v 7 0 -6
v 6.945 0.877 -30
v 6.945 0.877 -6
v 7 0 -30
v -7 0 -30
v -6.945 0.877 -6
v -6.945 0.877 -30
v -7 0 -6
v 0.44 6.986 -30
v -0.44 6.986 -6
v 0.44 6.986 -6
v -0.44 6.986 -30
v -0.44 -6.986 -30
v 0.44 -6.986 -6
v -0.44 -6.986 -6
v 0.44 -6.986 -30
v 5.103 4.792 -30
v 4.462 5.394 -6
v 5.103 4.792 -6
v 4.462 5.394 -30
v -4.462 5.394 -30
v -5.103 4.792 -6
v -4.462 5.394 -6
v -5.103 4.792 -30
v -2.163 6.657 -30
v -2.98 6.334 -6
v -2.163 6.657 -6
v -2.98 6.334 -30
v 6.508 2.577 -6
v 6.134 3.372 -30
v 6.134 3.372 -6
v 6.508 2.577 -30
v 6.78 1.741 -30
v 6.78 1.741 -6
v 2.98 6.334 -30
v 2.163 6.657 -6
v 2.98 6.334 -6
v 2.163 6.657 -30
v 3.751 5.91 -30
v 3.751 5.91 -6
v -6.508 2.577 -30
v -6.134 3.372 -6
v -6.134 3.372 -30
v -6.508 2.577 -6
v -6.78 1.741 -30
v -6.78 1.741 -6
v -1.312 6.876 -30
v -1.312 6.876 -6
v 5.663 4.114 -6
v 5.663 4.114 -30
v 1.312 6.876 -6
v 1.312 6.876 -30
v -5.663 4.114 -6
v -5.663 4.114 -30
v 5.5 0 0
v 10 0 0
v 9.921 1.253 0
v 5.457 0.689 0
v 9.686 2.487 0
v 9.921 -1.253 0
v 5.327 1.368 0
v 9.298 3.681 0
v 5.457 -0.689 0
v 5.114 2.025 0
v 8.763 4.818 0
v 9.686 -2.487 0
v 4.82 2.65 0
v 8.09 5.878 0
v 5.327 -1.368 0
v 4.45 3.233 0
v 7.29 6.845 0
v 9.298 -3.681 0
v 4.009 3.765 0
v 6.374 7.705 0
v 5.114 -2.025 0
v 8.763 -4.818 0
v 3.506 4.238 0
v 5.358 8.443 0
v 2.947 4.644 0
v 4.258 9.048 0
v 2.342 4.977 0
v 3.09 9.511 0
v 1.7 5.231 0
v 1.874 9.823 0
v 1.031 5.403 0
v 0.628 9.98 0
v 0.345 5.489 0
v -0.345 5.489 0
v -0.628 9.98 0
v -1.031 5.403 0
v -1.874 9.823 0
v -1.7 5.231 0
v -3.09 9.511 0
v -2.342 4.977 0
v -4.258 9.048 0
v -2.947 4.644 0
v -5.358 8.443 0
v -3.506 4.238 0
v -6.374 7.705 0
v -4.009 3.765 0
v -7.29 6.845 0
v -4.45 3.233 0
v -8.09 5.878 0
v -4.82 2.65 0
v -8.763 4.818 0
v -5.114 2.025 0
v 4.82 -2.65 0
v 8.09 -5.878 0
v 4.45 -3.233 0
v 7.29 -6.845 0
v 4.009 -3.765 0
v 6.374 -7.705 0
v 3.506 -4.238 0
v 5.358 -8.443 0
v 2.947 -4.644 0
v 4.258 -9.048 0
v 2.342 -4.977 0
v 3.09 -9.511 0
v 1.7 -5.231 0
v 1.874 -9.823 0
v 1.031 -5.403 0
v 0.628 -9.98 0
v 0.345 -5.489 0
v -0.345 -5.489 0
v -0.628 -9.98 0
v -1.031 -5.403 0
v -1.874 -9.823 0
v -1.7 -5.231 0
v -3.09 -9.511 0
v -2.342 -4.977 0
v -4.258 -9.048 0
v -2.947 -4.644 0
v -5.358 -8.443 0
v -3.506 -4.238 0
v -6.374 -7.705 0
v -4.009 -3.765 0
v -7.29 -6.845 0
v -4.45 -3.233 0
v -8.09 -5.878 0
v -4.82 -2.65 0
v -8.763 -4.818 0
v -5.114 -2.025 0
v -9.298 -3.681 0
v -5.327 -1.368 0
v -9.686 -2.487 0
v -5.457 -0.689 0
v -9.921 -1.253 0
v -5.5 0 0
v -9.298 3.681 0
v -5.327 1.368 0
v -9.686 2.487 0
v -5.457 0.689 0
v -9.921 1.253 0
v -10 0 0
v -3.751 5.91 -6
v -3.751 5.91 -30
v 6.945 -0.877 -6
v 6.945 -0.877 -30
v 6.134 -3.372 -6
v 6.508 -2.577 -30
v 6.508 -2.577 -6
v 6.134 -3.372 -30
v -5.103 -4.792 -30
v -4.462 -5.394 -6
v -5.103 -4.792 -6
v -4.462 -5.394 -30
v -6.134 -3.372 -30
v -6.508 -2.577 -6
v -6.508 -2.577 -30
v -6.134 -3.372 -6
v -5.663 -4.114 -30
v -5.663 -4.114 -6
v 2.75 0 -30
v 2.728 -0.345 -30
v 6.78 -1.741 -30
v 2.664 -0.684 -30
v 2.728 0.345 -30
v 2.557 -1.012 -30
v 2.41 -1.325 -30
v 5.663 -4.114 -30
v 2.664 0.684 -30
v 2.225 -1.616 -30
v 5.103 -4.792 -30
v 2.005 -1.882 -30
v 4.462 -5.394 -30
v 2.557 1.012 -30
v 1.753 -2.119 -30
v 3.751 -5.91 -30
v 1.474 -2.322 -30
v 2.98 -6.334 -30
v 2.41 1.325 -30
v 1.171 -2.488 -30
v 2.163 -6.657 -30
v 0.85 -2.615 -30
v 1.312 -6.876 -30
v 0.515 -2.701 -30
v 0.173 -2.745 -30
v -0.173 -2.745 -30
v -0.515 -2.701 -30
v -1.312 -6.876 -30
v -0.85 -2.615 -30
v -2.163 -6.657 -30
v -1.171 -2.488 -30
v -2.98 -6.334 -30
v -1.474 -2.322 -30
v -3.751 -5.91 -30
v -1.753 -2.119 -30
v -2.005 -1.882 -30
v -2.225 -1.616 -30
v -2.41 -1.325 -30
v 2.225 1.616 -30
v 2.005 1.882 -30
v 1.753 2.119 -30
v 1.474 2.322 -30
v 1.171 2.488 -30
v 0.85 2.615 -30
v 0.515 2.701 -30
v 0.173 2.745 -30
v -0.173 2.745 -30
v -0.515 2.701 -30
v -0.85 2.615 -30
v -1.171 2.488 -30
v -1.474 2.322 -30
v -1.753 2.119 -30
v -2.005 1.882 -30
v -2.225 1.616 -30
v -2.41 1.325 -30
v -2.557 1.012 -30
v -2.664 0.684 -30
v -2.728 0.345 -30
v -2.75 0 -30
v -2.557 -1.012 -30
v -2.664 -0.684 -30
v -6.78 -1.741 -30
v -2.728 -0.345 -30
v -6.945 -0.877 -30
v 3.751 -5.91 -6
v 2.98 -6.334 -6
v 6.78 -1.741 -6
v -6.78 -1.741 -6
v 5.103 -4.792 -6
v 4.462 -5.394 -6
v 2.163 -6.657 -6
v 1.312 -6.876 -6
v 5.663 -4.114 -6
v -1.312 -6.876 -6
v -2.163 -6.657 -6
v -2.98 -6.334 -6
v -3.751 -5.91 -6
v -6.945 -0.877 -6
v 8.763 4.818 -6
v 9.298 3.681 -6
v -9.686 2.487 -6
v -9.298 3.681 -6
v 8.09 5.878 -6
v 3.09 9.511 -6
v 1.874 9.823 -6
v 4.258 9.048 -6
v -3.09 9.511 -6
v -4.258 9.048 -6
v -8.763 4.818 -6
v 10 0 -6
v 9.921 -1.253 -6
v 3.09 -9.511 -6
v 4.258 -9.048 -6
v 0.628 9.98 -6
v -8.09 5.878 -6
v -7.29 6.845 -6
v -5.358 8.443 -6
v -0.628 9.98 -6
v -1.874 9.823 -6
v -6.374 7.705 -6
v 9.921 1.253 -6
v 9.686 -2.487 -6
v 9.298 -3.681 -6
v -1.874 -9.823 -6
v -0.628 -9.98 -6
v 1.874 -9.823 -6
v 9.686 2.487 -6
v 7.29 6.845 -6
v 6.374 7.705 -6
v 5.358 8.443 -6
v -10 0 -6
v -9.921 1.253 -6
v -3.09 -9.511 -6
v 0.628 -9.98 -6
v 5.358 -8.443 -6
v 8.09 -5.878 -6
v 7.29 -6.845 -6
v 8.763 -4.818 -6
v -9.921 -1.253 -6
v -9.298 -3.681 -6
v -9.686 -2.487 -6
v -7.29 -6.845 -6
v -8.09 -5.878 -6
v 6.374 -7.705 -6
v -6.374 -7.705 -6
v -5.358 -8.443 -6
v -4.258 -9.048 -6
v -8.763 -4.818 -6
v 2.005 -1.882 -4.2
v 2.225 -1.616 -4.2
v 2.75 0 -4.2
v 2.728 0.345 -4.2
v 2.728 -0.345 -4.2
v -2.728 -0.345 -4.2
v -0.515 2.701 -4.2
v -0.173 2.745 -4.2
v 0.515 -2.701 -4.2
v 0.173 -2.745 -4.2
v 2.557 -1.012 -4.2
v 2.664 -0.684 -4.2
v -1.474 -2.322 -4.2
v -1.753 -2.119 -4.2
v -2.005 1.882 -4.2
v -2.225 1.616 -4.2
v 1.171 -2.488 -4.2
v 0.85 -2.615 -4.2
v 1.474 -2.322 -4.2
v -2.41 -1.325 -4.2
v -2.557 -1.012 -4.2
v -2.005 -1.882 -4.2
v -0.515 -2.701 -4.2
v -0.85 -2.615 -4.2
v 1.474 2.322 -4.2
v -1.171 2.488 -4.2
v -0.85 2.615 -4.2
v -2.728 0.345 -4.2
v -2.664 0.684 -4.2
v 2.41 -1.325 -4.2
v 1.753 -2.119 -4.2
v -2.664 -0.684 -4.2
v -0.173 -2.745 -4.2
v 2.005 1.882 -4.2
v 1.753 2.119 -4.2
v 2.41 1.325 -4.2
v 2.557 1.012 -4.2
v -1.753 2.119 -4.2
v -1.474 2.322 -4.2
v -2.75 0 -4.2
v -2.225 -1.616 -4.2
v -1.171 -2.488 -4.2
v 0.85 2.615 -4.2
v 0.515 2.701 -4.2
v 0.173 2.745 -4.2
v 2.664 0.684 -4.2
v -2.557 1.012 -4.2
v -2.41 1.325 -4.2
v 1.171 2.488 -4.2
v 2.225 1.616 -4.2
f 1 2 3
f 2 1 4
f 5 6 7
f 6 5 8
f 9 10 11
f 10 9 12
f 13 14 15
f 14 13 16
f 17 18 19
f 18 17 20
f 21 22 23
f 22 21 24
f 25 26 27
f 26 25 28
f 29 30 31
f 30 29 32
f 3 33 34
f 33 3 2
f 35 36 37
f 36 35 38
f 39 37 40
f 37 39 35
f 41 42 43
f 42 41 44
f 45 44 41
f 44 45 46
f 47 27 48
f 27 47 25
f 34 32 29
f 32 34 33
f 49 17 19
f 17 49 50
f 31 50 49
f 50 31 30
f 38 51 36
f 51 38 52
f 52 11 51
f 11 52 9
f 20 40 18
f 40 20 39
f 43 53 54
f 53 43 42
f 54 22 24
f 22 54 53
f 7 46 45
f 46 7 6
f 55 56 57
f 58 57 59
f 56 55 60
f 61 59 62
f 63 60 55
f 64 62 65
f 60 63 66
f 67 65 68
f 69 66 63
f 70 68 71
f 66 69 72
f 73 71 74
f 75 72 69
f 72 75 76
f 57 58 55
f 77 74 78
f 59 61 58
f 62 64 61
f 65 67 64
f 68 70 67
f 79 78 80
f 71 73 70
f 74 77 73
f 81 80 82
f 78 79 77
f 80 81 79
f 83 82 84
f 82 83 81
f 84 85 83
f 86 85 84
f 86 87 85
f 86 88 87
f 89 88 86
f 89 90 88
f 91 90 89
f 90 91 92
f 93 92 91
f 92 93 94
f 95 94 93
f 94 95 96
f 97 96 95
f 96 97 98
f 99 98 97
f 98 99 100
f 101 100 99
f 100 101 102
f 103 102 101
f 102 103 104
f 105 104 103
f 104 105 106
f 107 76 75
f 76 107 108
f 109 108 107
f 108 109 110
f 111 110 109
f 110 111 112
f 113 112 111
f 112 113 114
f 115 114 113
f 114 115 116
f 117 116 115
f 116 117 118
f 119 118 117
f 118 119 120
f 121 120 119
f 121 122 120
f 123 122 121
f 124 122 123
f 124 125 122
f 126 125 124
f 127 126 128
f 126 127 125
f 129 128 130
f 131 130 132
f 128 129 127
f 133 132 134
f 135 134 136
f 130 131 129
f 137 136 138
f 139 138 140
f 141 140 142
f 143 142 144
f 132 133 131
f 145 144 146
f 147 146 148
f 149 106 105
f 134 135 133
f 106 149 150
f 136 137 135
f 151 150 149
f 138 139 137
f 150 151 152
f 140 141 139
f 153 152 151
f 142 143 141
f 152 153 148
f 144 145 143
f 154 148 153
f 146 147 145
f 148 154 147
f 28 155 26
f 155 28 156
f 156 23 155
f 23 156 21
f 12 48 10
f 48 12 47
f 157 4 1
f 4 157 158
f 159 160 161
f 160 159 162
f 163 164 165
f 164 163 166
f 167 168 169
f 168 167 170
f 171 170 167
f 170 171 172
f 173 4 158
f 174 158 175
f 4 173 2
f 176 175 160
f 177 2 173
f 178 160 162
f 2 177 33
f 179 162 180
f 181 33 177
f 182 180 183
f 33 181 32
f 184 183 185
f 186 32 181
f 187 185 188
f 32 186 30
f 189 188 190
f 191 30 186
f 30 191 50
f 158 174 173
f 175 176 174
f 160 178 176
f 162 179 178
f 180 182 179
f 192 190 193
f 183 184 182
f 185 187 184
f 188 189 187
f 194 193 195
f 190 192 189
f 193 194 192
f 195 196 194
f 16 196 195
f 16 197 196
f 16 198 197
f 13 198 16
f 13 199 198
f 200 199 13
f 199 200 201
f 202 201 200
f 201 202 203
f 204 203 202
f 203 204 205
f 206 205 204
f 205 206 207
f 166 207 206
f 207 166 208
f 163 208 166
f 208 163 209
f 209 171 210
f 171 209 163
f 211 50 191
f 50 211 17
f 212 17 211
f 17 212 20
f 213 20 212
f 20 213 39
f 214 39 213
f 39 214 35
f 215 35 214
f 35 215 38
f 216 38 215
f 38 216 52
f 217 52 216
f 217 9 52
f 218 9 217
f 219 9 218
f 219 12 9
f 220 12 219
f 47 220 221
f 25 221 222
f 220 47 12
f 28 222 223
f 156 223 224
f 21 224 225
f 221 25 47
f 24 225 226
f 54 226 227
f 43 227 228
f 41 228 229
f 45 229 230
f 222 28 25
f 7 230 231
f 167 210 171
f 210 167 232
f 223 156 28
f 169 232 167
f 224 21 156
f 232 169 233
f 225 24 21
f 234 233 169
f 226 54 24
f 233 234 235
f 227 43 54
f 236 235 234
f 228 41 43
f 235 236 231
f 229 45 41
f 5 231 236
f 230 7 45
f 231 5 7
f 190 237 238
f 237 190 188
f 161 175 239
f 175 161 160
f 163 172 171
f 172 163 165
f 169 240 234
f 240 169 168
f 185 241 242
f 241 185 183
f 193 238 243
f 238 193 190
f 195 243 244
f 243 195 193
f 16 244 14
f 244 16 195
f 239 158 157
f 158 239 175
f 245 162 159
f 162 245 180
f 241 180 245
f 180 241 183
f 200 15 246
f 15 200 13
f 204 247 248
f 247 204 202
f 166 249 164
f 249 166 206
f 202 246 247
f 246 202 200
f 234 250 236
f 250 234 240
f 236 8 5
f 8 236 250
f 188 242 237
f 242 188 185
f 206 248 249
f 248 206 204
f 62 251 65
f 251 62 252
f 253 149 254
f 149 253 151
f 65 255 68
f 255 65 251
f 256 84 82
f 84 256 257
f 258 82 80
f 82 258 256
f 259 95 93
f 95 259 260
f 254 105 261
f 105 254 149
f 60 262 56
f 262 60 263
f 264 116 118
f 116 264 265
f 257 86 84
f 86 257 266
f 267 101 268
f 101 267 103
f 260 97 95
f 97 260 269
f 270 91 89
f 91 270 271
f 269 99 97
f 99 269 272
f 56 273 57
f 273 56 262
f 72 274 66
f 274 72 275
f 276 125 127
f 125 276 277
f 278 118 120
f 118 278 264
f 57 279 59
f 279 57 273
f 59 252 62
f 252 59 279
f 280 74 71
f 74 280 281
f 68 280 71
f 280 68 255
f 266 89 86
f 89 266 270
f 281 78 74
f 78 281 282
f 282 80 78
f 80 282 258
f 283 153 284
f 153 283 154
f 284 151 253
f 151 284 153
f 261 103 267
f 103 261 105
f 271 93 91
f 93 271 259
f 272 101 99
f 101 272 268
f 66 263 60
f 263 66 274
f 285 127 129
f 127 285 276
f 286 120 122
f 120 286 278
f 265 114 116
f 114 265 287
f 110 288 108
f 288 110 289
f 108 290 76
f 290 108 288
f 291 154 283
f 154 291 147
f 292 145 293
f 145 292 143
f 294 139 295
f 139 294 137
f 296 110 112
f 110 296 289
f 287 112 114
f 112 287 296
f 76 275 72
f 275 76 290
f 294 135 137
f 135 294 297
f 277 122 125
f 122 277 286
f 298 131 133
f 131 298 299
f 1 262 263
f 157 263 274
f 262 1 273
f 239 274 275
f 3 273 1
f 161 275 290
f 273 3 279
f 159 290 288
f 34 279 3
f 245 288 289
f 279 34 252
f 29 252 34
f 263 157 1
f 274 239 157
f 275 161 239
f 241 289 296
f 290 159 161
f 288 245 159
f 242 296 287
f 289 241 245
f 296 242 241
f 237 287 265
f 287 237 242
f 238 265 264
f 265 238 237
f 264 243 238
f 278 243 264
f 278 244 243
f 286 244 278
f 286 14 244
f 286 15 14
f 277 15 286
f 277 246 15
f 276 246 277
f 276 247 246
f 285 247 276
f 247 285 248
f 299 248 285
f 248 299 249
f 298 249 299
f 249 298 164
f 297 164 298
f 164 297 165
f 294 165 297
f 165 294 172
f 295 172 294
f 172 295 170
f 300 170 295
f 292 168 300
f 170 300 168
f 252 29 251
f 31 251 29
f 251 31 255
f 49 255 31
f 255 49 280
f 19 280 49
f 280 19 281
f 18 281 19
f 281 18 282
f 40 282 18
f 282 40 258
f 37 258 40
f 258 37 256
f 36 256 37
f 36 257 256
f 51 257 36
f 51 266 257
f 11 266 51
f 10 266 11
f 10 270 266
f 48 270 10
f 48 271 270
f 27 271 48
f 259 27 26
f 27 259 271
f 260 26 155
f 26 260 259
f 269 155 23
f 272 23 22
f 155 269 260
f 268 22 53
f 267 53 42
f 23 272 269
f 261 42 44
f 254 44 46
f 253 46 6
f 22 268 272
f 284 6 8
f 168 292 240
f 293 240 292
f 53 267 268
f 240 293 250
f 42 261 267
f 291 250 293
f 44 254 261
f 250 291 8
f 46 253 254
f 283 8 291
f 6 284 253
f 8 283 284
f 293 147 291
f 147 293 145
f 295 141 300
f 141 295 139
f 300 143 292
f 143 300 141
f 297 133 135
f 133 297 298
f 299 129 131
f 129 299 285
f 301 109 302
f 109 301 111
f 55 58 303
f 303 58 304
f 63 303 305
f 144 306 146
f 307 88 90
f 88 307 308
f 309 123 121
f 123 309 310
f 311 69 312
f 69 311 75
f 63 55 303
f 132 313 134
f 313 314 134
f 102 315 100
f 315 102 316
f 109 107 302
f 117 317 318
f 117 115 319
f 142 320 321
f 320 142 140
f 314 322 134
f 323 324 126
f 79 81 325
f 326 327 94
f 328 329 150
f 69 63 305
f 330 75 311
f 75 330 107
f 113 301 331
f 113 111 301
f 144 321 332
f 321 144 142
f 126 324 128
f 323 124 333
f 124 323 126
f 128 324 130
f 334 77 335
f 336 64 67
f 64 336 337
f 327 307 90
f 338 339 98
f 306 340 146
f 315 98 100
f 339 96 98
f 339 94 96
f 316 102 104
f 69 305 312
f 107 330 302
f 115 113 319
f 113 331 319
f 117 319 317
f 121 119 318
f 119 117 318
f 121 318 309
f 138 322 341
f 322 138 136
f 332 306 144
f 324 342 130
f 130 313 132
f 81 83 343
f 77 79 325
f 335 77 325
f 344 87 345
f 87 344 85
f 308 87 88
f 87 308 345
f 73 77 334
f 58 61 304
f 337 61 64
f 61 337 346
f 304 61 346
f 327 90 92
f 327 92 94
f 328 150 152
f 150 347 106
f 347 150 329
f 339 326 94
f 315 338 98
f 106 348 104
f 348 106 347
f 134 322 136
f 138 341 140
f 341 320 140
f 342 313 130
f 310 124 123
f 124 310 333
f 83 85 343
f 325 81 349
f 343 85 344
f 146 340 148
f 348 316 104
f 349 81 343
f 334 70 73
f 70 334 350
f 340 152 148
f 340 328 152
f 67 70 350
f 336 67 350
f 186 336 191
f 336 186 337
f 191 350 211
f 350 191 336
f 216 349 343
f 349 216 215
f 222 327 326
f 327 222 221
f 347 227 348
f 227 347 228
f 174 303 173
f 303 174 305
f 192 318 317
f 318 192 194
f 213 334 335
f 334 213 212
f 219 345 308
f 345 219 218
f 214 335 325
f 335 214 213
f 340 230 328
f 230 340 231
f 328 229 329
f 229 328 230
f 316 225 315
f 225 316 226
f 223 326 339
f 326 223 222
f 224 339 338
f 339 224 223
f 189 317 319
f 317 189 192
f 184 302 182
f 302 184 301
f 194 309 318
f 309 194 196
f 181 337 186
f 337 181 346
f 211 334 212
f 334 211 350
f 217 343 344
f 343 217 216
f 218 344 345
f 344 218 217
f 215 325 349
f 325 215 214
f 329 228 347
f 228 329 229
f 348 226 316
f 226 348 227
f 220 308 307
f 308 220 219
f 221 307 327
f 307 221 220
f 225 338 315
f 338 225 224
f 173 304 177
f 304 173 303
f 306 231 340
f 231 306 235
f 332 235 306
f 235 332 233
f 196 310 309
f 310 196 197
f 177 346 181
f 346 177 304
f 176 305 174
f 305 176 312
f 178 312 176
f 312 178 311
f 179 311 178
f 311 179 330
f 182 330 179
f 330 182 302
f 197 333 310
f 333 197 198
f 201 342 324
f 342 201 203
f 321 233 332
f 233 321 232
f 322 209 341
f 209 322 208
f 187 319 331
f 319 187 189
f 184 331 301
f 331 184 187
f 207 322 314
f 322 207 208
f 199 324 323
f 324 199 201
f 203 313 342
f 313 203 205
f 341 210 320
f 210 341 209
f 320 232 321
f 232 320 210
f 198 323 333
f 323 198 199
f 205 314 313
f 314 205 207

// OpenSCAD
$fn = 50;


difference() {
	union() {
		translate(v = [0, 0, -30.0000000000]) {
			cylinder(h = 30, r = 7.0000000000);
		}
		translate(v = [0, 0, -6.0000000000]) {
			cylinder(h = 6, r = 10.0000000000);
		}
	}
	union() {
		translate(v = [0, 0, 0]) {
			rotate(a = [0, 0, 0]) {
				difference() {
					union() {
						#translate(v = [0, 0, -30.0000000000]) {
							cylinder(h = 30, r = 2.2500000000);
						}
						#translate(v = [0, 0, -4.2000000000]) {
							cylinder(h = 4.2000000000, r = 7.0000000000, r1 = 2.7500000000, r2 = 5.5000000000);
						}
						#translate(v = [0, 0, -30.0000000000]) {
							cylinder(h = 30, r = 2.7500000000);
						}
						#translate(v = [0, 0, -30.0000000000]) {
							cylinder(h = 30, r = 2.2500000000);
						}
					}
					union();
				}
			}
		}
	}
}
